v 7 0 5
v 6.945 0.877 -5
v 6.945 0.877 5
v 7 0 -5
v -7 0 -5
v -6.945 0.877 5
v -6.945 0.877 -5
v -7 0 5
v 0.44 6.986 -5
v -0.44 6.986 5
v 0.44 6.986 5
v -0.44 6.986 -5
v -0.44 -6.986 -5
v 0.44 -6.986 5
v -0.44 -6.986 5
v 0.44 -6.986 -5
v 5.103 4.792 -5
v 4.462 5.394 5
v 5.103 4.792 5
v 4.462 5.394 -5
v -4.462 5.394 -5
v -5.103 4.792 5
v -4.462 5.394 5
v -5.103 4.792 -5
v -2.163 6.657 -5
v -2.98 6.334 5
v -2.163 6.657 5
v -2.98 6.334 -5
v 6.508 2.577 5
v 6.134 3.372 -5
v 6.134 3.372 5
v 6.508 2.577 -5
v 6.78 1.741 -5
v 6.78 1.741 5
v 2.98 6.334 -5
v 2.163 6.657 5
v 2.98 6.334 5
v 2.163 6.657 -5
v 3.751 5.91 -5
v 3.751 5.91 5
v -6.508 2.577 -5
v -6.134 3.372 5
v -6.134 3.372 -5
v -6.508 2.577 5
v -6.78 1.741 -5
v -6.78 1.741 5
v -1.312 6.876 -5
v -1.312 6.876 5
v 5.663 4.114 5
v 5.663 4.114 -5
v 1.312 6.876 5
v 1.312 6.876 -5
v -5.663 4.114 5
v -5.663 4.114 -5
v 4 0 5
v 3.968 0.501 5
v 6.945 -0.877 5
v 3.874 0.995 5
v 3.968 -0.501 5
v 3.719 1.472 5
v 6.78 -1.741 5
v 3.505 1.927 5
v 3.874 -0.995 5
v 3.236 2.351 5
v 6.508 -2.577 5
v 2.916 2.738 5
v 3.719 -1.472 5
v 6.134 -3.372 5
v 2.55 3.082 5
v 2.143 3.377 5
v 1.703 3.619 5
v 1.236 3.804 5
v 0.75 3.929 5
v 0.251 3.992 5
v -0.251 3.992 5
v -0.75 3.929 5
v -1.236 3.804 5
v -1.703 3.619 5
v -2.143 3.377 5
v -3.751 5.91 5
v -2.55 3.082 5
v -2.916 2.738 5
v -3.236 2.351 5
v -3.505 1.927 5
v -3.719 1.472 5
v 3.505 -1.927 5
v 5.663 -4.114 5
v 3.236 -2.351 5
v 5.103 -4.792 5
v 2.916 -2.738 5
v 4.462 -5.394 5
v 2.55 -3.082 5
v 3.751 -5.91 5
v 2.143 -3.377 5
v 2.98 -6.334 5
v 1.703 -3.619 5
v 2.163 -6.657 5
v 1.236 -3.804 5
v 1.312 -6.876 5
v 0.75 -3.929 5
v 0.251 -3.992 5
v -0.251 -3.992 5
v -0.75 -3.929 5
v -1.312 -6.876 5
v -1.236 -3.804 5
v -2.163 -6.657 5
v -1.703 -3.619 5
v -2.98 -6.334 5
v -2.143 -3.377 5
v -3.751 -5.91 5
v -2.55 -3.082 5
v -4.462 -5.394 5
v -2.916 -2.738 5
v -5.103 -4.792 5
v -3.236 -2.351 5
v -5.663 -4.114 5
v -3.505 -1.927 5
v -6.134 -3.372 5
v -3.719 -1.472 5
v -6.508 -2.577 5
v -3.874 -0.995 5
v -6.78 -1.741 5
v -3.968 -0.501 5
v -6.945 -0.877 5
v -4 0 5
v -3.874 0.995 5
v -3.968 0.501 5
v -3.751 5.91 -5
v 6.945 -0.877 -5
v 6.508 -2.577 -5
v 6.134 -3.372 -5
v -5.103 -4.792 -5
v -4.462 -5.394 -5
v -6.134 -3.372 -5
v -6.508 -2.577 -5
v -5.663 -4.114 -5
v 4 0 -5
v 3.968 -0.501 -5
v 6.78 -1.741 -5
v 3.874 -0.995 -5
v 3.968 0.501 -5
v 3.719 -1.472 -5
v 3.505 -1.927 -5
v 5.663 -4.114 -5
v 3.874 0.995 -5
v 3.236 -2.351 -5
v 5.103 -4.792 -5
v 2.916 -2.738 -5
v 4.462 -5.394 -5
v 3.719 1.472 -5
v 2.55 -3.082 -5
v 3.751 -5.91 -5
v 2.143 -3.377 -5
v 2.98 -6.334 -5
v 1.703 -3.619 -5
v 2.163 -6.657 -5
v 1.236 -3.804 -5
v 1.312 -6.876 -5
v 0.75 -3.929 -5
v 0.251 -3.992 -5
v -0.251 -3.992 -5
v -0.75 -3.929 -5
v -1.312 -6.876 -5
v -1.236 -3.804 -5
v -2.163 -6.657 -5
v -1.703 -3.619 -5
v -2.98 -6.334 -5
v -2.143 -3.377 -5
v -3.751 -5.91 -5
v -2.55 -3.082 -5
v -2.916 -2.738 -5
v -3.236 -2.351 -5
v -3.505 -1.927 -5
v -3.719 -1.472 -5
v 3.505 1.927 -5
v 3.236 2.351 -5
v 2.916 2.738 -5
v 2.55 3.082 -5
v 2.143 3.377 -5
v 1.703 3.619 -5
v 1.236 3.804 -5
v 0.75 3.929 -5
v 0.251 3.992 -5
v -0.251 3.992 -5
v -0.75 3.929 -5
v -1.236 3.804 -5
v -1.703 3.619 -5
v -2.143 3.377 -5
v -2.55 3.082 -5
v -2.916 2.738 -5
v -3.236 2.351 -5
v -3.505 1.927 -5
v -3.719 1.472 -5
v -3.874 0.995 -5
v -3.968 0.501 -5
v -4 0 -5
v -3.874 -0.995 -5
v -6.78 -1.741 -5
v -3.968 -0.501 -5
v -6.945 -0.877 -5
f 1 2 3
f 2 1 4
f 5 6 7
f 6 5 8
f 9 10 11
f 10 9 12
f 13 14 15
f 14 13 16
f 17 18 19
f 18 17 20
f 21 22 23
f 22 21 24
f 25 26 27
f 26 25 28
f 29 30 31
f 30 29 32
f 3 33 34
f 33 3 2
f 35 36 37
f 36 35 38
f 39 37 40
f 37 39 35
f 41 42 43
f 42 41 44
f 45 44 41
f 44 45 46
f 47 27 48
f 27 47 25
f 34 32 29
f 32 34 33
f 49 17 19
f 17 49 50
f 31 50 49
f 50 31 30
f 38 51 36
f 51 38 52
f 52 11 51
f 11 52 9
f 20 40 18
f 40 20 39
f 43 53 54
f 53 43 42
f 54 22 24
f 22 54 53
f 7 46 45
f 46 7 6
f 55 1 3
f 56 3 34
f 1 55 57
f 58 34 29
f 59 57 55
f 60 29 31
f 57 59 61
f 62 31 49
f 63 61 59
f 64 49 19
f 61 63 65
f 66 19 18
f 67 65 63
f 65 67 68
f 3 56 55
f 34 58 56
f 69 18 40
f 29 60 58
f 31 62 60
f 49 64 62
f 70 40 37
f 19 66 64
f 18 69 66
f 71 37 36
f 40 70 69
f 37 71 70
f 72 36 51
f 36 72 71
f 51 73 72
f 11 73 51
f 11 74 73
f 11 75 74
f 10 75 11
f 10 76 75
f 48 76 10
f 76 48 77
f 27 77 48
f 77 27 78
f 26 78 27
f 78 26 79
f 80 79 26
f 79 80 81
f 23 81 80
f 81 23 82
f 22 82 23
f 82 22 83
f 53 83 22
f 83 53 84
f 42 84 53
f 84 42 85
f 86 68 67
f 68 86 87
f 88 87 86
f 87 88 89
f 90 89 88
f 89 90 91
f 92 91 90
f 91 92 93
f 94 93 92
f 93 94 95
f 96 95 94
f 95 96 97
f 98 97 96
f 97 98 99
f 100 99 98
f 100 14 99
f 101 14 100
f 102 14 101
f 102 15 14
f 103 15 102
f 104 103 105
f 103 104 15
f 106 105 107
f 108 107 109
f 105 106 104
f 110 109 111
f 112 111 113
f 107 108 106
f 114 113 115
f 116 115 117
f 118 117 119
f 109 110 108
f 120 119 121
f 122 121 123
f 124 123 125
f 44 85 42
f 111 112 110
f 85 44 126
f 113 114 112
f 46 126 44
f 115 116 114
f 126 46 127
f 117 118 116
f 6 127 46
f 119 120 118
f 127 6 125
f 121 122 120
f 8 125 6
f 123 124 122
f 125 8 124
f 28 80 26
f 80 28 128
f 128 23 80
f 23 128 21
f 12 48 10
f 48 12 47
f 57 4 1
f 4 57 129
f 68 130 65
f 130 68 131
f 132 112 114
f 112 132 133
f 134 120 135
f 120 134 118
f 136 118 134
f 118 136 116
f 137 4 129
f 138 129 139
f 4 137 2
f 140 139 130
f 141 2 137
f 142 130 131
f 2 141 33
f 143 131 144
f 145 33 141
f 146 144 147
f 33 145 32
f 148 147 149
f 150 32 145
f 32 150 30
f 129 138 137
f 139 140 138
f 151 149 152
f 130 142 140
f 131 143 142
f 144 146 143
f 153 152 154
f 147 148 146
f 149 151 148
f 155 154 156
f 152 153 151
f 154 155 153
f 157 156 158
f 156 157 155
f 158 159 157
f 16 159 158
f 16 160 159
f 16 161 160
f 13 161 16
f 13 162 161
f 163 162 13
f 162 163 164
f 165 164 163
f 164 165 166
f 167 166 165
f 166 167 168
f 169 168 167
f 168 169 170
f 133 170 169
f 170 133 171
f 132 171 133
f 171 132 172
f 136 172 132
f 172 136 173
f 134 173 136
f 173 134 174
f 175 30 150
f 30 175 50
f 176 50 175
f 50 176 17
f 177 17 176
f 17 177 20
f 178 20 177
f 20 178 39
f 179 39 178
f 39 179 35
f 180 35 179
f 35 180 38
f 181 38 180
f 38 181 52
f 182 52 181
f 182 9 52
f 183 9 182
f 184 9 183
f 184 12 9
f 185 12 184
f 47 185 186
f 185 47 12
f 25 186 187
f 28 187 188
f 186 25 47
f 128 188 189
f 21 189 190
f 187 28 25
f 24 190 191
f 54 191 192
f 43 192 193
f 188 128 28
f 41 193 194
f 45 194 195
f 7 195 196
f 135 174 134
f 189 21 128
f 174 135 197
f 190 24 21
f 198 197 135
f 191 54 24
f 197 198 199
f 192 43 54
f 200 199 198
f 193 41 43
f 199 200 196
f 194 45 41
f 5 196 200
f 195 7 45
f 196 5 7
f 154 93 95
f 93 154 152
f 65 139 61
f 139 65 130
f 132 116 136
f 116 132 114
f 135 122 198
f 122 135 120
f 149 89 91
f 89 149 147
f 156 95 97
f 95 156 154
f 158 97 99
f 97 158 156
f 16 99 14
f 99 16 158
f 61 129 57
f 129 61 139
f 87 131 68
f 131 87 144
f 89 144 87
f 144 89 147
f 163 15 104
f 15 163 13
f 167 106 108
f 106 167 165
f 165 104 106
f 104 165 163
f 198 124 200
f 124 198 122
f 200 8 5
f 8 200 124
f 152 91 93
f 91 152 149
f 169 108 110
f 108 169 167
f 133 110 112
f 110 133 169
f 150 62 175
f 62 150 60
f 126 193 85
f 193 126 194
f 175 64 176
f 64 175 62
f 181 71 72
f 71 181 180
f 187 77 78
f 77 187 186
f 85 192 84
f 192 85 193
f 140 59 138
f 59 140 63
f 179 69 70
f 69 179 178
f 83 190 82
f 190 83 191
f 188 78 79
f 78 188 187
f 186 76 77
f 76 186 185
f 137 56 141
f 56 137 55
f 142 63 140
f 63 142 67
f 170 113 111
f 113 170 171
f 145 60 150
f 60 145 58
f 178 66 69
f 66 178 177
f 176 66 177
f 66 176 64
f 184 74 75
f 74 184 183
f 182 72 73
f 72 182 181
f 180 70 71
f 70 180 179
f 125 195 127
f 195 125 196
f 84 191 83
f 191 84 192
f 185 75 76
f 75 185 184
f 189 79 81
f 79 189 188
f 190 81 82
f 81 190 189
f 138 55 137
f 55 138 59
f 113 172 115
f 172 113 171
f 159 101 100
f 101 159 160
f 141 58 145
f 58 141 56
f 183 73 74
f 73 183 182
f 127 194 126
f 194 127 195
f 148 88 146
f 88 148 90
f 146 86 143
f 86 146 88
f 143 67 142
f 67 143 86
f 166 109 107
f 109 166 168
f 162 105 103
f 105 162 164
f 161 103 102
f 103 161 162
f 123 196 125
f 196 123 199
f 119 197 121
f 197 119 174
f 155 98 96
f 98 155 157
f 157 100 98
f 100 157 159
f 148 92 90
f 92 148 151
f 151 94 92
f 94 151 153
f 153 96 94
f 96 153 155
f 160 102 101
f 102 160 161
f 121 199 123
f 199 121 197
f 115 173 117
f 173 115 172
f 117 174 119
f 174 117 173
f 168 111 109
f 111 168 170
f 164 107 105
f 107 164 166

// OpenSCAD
$fn = 50;


difference() {
	union() {
		translate(v = [0, 0, -5.0000000000]) {
			cylinder(h = 10, r = 7.0000000000);
		}
	}
	union() {
		translate(v = [0, 0, -100.0000000000]) {
			cylinder(h = 200, r = 4);
		}
	}
}
